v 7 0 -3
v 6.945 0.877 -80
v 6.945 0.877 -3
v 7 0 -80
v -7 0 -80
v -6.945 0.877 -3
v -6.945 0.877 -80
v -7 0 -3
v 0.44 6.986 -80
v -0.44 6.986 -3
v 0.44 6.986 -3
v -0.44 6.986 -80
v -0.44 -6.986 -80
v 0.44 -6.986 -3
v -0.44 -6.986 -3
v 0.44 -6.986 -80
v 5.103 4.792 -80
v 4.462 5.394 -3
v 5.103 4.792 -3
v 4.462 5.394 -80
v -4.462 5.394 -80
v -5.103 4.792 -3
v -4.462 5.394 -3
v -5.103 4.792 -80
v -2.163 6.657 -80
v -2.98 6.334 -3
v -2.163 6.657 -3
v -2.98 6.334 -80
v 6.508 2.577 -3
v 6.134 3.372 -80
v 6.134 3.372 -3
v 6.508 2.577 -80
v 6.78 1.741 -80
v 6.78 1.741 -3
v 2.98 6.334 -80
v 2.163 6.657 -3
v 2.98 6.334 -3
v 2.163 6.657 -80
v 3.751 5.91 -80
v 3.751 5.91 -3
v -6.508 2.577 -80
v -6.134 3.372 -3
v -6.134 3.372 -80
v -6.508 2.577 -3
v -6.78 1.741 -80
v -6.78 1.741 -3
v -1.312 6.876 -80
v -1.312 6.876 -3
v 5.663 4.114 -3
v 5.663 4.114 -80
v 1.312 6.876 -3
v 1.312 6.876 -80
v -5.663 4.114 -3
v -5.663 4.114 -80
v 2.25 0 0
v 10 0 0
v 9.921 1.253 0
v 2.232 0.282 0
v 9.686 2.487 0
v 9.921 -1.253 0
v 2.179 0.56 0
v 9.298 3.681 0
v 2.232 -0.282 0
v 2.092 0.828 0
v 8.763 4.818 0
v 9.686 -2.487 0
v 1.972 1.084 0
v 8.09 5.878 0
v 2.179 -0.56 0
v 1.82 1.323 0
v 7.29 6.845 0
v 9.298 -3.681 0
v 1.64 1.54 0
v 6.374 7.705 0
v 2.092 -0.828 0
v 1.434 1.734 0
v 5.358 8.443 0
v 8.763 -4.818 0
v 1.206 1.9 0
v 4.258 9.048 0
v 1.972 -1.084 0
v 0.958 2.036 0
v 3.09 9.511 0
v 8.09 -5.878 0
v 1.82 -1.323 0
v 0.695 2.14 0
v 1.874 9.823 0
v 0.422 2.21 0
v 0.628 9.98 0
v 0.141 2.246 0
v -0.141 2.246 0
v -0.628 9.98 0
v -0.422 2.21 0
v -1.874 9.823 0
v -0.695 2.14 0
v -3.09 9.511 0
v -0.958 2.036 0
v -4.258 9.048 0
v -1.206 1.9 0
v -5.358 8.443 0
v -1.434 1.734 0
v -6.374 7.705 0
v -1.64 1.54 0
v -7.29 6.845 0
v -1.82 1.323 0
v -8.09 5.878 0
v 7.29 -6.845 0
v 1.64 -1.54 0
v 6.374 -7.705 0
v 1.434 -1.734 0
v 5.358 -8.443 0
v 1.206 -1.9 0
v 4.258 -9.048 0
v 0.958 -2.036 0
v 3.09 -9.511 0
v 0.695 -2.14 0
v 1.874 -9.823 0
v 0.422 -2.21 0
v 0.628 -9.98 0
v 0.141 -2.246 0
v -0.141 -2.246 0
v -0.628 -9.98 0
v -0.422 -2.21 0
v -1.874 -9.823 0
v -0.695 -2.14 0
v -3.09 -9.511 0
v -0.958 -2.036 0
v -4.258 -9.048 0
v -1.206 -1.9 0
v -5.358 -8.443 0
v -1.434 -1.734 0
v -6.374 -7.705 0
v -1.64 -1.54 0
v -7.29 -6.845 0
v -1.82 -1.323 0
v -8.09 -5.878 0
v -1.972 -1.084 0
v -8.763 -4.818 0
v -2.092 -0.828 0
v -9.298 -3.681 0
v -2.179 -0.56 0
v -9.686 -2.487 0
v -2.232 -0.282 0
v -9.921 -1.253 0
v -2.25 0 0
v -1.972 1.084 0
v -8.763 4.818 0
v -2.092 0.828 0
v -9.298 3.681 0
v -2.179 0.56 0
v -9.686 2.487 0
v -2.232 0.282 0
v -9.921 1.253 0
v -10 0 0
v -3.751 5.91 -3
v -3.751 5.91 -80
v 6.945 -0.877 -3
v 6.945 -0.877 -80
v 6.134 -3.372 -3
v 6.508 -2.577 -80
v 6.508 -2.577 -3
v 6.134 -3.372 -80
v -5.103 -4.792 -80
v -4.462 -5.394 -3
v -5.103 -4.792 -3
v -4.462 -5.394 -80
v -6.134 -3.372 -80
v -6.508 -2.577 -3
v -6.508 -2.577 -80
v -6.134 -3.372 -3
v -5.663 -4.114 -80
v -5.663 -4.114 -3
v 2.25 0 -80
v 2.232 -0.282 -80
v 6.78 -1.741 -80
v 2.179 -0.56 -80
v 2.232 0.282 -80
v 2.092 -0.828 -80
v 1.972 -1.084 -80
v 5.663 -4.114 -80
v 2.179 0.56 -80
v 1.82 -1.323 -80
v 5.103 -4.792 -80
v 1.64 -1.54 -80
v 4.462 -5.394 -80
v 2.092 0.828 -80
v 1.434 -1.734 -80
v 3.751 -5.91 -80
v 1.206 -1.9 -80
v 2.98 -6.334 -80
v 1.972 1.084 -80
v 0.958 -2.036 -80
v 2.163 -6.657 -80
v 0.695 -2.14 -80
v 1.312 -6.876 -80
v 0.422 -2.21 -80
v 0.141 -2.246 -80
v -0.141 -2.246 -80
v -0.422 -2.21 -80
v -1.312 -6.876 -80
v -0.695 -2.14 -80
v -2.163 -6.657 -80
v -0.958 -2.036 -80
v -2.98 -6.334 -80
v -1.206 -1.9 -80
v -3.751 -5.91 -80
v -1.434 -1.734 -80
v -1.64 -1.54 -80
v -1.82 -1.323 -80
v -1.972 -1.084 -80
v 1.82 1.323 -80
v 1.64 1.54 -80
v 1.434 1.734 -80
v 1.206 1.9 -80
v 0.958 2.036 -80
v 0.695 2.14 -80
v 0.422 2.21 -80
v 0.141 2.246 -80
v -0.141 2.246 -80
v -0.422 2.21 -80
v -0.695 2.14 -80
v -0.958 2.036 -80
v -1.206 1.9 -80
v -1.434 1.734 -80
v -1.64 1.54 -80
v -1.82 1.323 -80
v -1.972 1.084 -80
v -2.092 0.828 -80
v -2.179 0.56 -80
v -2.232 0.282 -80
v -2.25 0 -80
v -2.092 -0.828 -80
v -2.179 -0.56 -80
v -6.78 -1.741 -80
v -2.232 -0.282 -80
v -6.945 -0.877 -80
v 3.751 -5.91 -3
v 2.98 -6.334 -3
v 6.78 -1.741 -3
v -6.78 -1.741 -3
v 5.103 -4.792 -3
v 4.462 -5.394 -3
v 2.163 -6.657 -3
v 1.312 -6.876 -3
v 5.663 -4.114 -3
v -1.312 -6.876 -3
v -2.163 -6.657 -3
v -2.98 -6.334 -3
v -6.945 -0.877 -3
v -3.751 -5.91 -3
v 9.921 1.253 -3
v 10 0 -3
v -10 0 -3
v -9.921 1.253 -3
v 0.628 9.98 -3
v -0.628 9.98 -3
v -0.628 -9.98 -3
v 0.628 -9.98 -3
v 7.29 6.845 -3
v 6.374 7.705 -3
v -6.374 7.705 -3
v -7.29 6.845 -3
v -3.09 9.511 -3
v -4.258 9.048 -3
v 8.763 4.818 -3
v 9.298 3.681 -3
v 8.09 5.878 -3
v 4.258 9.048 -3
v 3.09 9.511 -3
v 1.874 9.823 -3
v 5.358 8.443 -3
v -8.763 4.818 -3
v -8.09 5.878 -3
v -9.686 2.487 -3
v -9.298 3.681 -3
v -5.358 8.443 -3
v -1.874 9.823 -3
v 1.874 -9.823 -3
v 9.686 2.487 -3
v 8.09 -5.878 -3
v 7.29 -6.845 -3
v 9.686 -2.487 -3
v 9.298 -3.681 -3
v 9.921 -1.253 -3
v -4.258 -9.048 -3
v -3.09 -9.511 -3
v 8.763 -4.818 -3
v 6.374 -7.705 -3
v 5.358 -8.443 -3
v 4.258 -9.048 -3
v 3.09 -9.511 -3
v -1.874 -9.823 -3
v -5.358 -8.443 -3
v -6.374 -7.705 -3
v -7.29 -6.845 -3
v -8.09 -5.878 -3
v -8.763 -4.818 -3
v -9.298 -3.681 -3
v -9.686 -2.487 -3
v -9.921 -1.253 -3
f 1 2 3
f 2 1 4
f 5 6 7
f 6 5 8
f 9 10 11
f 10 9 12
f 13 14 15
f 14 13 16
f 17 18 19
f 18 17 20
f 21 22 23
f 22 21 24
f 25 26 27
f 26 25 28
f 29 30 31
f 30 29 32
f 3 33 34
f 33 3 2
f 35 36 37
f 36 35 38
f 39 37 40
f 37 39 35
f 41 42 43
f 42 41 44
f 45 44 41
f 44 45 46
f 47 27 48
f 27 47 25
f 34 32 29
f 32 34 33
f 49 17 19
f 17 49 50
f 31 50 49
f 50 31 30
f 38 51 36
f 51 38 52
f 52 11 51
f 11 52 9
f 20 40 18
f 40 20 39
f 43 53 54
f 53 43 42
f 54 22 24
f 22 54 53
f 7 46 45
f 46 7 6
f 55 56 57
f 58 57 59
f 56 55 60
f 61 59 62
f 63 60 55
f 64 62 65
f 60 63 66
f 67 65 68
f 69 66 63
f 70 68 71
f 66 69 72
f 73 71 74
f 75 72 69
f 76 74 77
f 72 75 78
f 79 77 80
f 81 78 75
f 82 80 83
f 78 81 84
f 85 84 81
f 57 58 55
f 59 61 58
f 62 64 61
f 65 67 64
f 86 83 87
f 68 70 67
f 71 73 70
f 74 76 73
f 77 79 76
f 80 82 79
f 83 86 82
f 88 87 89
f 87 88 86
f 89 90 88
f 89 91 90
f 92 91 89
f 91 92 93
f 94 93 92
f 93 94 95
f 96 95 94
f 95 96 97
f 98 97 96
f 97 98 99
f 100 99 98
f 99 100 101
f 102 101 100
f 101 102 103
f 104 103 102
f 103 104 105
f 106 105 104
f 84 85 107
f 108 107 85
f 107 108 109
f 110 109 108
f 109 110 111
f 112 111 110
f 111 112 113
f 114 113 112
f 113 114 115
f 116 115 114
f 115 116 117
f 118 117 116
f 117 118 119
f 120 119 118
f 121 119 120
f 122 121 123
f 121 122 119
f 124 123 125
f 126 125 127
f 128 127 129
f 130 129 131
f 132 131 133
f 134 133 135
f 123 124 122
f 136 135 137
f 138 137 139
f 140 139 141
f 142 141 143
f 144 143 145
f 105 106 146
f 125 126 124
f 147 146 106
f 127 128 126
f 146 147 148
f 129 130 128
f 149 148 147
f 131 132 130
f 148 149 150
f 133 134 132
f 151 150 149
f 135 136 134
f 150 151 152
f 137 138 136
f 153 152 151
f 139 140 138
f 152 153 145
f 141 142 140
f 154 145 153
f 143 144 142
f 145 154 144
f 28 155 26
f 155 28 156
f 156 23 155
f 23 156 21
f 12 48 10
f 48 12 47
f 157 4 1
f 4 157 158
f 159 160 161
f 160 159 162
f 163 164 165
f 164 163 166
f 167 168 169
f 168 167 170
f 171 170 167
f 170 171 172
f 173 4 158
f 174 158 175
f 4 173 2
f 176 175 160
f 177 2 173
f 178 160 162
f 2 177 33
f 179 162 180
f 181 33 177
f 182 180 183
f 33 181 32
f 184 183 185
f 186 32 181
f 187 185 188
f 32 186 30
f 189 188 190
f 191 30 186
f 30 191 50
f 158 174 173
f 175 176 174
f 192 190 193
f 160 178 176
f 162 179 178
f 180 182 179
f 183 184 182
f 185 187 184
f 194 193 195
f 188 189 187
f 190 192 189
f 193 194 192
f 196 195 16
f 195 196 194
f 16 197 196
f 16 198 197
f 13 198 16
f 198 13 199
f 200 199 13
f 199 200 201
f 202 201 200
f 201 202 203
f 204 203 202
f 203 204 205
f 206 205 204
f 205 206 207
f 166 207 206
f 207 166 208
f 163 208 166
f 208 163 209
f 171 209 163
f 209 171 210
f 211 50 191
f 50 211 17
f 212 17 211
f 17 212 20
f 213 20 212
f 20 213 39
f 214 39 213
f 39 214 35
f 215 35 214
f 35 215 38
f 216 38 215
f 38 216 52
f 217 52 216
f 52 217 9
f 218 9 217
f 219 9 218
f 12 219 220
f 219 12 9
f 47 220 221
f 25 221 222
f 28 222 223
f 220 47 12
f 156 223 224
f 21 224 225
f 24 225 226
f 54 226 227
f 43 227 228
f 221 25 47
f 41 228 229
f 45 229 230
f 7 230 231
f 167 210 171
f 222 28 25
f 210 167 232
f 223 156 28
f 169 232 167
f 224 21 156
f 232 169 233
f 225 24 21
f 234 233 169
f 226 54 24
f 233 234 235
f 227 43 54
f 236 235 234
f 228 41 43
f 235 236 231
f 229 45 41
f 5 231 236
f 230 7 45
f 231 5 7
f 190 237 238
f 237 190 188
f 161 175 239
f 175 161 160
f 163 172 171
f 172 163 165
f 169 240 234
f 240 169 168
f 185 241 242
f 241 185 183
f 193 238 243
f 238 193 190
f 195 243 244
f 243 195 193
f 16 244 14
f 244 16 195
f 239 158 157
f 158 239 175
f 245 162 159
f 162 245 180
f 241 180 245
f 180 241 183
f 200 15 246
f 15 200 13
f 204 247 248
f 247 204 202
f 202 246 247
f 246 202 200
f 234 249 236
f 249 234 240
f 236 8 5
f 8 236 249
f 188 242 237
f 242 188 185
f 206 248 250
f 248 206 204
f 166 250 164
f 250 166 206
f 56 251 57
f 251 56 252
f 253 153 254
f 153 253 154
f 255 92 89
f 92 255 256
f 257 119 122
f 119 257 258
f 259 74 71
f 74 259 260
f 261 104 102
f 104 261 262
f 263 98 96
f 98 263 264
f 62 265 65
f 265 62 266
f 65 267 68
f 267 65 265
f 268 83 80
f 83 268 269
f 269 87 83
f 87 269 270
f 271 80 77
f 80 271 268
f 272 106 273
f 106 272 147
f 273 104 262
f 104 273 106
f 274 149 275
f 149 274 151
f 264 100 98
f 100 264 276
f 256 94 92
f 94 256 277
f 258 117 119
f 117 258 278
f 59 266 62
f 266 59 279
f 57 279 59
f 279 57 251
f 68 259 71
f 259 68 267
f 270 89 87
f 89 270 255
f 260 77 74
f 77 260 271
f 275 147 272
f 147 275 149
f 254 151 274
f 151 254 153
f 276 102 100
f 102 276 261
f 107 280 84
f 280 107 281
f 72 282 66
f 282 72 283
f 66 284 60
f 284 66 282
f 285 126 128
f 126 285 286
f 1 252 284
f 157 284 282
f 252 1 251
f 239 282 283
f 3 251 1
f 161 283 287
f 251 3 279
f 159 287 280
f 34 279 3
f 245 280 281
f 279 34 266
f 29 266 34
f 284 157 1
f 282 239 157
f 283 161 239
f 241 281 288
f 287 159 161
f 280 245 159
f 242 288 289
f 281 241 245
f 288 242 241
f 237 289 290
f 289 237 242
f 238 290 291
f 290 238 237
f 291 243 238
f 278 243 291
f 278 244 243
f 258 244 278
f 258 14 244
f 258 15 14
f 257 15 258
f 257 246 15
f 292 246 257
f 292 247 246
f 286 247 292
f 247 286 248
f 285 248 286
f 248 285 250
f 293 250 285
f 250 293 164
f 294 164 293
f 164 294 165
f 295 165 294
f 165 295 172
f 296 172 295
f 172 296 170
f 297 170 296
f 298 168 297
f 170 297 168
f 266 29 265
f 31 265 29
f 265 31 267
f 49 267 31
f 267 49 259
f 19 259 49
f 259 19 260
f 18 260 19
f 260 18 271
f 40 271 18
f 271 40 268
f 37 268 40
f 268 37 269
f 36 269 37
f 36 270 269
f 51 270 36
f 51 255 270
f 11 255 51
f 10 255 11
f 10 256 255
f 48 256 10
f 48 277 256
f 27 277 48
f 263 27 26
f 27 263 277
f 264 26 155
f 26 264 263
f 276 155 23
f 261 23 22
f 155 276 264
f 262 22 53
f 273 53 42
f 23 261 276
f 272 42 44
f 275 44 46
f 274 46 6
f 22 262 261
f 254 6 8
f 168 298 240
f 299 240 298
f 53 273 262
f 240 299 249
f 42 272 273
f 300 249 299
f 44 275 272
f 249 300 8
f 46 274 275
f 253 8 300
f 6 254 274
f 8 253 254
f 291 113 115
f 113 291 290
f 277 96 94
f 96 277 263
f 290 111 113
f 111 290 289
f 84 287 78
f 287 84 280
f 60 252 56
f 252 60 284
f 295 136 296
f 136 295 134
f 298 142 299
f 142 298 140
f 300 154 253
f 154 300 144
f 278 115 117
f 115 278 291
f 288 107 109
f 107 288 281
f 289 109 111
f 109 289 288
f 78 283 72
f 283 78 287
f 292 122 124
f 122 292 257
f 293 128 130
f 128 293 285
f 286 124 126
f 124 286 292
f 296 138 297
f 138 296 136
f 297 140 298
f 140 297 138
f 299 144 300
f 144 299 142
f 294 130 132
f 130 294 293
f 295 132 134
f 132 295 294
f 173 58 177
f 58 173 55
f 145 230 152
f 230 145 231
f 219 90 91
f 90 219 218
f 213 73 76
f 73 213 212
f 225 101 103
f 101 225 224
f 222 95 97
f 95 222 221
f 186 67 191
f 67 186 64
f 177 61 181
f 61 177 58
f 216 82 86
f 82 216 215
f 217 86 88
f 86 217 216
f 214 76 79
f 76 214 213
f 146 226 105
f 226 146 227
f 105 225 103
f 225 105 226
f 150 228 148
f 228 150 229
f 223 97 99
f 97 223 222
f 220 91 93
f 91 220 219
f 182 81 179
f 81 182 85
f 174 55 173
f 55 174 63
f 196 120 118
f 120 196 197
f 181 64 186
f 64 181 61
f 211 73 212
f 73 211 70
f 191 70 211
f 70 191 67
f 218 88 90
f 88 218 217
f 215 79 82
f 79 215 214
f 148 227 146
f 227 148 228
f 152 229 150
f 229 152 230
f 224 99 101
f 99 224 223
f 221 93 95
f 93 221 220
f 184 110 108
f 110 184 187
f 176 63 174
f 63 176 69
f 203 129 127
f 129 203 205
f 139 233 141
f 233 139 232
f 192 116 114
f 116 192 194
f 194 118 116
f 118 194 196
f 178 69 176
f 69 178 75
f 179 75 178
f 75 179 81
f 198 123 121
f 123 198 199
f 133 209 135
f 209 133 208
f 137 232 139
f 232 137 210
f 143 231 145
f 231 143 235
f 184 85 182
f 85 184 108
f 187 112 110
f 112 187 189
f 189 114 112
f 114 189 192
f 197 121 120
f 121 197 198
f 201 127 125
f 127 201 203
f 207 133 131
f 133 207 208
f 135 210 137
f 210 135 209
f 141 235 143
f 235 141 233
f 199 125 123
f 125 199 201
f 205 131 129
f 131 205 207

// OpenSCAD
$fn = 50;


difference() {
	union() {
		translate(v = [0, 0, -80.0000000000]) {
			cylinder(h = 80, r = 7.0000000000);
		}
		translate(v = [0, 0, -3.0000000000]) {
			cylinder(h = 3, r = 10.0000000000);
		}
	}
	union() {
		#translate(v = [0, 0, -80]) {
			cylinder(h = 80, r = 2.2500000000);
		}
	}
}
